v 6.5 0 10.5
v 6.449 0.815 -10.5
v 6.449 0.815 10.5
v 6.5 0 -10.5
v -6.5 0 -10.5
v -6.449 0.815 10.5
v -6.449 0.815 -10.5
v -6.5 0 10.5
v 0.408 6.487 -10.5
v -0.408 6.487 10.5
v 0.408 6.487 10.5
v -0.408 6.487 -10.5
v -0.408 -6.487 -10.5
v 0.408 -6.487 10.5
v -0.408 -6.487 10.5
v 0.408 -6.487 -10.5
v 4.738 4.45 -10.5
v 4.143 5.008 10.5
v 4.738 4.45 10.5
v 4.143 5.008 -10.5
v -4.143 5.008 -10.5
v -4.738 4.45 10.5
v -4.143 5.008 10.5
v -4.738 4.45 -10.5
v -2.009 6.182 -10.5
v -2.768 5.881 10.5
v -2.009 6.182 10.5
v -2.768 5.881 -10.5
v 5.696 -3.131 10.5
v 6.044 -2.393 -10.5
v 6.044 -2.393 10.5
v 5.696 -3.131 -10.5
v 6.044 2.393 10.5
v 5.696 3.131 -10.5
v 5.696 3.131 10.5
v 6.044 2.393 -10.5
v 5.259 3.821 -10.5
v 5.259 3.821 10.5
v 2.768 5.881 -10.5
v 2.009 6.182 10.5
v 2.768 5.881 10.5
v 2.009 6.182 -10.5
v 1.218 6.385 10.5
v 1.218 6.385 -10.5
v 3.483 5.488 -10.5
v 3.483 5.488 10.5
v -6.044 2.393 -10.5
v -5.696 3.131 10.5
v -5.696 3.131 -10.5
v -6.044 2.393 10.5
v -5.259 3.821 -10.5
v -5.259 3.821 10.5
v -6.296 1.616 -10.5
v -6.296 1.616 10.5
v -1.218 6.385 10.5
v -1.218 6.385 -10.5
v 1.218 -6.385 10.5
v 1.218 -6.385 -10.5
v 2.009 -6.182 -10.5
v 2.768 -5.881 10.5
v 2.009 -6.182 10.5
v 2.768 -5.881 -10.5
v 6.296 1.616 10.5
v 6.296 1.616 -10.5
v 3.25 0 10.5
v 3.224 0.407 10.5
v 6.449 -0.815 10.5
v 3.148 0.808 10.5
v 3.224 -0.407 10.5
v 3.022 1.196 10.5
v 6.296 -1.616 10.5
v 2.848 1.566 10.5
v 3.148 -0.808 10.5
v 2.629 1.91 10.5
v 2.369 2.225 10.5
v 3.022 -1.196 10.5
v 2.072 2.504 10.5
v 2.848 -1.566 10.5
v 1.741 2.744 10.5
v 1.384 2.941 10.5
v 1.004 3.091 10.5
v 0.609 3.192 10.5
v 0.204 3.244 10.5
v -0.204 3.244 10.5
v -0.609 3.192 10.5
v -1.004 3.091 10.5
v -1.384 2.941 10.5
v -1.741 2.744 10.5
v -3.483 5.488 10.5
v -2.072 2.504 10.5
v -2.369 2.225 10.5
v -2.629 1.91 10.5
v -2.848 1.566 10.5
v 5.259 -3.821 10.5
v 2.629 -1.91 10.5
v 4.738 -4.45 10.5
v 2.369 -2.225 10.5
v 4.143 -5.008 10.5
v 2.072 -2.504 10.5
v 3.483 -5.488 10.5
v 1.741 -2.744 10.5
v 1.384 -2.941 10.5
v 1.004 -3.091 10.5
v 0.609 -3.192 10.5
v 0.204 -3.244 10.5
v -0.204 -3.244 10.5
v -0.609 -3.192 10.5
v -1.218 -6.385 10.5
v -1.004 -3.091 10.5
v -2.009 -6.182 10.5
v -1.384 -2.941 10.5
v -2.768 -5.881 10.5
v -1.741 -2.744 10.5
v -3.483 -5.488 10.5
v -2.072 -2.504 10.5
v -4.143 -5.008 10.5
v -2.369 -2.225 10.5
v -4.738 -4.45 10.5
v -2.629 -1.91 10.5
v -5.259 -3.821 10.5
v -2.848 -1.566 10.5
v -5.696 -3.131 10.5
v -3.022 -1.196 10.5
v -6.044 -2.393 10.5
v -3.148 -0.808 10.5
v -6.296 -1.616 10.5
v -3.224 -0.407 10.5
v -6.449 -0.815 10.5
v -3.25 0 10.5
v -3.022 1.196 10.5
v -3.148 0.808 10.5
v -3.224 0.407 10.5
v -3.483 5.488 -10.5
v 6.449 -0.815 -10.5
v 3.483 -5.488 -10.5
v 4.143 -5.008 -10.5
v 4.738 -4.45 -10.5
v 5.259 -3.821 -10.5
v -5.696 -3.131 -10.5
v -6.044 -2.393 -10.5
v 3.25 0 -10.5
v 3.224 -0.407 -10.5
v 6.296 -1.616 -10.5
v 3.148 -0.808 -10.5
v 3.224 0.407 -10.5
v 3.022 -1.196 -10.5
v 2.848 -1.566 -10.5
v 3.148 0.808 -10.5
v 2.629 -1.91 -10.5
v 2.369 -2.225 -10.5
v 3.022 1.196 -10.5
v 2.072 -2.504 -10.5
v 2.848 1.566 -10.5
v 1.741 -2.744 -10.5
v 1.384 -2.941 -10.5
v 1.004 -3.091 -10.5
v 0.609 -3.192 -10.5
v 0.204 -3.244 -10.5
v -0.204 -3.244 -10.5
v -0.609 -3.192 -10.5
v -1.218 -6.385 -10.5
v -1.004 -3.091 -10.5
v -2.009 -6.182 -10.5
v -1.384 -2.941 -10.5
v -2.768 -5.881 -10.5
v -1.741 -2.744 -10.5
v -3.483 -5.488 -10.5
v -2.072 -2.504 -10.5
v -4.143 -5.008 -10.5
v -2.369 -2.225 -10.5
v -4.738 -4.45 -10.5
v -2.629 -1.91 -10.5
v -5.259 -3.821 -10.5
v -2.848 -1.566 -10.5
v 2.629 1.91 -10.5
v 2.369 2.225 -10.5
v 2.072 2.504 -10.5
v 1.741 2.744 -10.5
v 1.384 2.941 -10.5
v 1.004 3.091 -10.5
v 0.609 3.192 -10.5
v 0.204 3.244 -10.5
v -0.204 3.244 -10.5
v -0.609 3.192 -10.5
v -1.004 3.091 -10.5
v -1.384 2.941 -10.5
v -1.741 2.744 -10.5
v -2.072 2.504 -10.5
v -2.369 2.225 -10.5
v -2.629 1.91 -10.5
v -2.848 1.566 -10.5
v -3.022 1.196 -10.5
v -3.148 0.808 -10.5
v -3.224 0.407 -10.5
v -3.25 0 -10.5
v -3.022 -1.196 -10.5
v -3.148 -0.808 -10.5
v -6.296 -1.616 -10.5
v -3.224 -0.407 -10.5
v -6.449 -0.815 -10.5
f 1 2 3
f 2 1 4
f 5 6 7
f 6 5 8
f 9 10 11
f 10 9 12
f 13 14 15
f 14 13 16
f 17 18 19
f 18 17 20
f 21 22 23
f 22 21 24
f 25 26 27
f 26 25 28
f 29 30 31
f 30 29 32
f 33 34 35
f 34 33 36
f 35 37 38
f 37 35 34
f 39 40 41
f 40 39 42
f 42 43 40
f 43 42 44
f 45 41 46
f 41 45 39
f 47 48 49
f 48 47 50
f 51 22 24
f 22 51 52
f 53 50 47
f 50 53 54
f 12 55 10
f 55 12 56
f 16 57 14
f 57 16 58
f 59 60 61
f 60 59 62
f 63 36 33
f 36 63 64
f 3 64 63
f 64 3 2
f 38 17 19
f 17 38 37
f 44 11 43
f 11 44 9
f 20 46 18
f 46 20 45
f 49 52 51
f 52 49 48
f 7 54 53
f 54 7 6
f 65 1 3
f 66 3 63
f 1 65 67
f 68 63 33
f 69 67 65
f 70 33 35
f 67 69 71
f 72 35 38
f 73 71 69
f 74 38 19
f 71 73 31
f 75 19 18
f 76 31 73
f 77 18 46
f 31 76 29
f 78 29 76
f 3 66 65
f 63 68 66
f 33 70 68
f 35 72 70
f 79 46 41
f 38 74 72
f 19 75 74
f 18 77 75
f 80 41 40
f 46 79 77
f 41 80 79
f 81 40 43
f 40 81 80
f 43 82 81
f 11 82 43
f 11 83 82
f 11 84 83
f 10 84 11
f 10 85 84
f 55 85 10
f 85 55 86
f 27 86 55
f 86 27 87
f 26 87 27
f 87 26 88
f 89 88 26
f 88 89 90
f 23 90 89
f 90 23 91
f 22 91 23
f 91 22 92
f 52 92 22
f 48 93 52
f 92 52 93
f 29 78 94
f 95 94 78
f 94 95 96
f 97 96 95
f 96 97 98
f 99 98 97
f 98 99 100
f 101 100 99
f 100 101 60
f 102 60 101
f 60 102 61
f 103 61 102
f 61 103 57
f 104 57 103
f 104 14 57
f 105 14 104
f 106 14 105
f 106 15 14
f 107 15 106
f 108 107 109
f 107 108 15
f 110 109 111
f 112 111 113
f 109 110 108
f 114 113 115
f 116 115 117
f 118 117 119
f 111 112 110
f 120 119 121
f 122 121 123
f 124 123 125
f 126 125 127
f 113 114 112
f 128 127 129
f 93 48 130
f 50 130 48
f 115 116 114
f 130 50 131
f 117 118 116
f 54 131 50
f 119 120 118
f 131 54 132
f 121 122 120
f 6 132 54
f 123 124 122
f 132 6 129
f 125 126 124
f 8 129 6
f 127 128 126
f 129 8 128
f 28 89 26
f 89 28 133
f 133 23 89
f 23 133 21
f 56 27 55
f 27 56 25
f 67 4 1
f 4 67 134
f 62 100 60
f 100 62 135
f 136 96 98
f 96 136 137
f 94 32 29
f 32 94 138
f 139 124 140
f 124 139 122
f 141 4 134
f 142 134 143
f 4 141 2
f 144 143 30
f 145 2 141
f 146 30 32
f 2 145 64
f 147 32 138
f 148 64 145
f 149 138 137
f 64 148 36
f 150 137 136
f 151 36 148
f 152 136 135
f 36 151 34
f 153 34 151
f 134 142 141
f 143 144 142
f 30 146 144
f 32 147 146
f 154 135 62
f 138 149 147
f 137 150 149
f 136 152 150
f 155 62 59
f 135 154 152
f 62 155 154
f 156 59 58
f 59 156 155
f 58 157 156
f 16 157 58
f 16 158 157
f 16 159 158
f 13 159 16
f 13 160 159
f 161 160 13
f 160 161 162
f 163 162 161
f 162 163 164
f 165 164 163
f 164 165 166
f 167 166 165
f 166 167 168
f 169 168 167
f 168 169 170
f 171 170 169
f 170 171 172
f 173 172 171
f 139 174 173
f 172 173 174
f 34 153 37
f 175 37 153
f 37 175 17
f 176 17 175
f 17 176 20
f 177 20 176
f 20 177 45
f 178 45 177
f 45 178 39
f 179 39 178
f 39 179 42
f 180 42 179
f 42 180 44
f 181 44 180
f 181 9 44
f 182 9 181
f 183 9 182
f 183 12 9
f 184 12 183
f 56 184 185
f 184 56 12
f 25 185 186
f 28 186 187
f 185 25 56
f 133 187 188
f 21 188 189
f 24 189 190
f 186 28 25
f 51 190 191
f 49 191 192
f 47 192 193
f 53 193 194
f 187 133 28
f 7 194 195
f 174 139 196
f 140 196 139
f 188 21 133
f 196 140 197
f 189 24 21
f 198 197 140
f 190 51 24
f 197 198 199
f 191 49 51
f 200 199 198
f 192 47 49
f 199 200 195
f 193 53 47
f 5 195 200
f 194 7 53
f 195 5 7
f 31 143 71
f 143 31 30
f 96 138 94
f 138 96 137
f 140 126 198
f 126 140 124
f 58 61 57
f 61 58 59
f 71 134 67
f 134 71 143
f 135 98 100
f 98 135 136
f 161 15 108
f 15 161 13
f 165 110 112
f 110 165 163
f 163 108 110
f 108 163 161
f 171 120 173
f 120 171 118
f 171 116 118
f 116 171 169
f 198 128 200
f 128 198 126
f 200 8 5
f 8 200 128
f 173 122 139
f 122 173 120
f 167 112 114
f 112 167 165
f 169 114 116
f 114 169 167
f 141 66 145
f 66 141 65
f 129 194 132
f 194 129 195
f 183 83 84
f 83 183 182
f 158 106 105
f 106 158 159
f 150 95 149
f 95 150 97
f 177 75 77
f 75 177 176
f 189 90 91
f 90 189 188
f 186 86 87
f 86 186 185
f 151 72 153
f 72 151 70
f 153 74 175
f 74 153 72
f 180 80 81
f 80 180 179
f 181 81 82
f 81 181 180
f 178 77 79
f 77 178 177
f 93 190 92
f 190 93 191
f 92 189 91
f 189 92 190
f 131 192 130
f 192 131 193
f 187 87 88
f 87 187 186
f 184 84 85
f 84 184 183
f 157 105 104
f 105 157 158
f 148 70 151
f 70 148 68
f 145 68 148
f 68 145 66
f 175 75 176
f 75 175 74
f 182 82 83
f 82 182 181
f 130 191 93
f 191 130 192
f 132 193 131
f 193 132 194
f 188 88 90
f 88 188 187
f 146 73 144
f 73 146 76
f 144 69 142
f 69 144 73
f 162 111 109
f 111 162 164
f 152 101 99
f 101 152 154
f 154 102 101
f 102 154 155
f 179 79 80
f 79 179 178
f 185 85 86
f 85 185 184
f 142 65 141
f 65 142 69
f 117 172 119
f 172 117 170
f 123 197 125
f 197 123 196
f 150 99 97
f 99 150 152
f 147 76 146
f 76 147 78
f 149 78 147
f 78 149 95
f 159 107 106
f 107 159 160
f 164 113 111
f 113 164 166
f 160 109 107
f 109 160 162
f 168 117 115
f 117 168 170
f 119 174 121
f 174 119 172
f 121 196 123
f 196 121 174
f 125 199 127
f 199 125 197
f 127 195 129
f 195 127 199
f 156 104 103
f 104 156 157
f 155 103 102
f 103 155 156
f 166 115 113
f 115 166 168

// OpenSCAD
$fn = 50;


difference() {
	union() {
		translate(v = [0, 0, -10.5000000000]) {
			cylinder(h = 21, r = 6.5000000000);
		}
	}
	union() {
		translate(v = [0, 0, -100.0000000000]) {
			cylinder(h = 200, r = 3.2500000000);
		}
	}
}
